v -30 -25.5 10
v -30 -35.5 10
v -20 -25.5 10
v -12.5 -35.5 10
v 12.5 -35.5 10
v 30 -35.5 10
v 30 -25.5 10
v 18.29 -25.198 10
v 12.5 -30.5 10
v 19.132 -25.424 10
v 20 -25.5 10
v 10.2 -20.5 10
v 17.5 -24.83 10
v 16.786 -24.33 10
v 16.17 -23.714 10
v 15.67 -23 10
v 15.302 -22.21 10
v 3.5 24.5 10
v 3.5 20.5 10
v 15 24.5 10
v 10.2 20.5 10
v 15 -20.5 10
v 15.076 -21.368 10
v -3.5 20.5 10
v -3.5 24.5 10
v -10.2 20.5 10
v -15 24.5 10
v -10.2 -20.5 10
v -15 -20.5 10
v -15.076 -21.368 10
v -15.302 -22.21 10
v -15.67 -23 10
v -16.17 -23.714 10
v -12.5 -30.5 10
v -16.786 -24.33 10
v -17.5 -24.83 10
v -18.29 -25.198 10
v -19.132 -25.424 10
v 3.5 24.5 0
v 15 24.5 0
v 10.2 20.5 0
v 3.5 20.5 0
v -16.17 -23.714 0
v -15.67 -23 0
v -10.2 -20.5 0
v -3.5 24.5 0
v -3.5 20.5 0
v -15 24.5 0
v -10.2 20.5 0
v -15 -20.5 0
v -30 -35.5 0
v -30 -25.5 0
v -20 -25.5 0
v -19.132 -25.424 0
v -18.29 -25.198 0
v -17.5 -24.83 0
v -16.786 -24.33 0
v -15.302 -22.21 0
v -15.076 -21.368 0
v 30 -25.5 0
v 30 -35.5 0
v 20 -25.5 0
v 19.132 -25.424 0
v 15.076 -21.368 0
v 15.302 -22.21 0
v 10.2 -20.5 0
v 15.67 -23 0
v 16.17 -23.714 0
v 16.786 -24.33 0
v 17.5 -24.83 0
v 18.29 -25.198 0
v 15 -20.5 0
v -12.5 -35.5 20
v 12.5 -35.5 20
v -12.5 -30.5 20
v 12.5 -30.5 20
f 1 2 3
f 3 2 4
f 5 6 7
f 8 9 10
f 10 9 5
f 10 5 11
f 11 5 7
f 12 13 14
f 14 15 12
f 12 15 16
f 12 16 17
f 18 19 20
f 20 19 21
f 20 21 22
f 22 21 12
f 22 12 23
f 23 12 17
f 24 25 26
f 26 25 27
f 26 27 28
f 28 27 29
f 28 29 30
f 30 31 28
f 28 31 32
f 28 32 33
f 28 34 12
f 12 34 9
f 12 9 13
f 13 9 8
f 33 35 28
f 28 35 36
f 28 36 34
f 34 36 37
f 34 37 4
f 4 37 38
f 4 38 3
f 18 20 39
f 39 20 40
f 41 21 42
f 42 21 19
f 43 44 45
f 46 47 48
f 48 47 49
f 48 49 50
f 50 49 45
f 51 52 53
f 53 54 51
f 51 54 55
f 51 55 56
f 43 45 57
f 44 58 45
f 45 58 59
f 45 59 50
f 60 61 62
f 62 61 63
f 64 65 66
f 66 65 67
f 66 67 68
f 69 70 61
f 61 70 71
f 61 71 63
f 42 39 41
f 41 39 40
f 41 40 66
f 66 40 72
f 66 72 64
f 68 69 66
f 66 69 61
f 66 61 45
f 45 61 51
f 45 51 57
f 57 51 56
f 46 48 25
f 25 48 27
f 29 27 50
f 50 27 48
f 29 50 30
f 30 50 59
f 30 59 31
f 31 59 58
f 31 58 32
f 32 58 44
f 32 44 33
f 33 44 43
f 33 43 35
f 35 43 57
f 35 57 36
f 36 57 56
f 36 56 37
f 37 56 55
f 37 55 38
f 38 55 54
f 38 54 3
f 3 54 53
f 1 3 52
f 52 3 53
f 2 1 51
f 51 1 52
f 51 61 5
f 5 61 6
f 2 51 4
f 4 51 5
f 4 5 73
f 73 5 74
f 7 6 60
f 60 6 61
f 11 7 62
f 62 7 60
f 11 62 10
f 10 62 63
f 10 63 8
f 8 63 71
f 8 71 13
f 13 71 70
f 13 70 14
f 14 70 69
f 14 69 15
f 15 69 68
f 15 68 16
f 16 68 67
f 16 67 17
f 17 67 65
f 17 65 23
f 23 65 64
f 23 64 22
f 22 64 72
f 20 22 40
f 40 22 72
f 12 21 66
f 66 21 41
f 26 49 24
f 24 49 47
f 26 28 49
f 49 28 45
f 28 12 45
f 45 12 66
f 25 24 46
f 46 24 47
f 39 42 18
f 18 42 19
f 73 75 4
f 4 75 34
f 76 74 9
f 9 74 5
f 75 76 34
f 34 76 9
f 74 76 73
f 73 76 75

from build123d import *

# Parameters (mm, degrees)
SKETCH1_W           = 20.4
SKETCH1_H           = 41
BOSS_EXTRUDE1_DEPTH = 10
CUT_EXTRUDE1_REACH  = 69.823
SKETCH2_W           = 7
SKETCH2_H           = 10
SKETCH3_W           = 25
SKETCH3_H           = 5
BOSS_EXTRUDE2_DEPTH = 10


with BuildPart() as part:
    # Sketch1 → Boss-Extrude1 (new body)
    with BuildSketch(Plane.XY):
        with BuildLine():
            Line((-15, 24.5), (-15, -20.5))
            ThreePointArc((-15, -20.5), (-16.464466094, -24.035533906), (-20, -25.5))
            Line((-20, -25.5), (-30, -25.5))
            Line((-30, -25.5), (-30, -35.5))
            Line((-30, -35.5), (30, -35.5))
            Line((30, -35.5), (30, -25.5))
            Line((30, -25.5), (20, -25.5))
            ThreePointArc((20, -25.5), (16.464466094, -24.035533906), (15, -20.5))
            Line((15, -20.5), (15, 24.5))
            Line((15, 24.5), (-15, 24.5))
        make_face()
        Rectangle(SKETCH1_W, SKETCH1_H, mode=Mode.SUBTRACT)
    extrude(amount=BOSS_EXTRUDE1_DEPTH)

    # Sketch2 → Cut-Extrude1 (cut, up to next)
    with BuildSketch(Plane(origin=(0, 24.5, 0), x_dir=(1, 0, 0), z_dir=(0, 1, 0)), mode=Mode.PRIVATE) as cut_extrude1_sk1:
        with Locations((0, -5)):
            Rectangle(SKETCH2_W, SKETCH2_H)
    cut_extrude1_tool1 = extrude(cut_extrude1_sk1.sketch, amount=-CUT_EXTRUDE1_REACH, mode=Mode.PRIVATE) & part.part
    add(cut_extrude1_tool1.solids().sort_by_distance((0, 24.5, 5))[0], mode=Mode.SUBTRACT)

    # Sketch3 → Boss-Extrude2 (add)
    with BuildSketch(Plane.XY.offset(10)):
        with Locations((0, -33)):
            Rectangle(SKETCH3_W, SKETCH3_H)
    extrude(amount=BOSS_EXTRUDE2_DEPTH)


solid = part.part
